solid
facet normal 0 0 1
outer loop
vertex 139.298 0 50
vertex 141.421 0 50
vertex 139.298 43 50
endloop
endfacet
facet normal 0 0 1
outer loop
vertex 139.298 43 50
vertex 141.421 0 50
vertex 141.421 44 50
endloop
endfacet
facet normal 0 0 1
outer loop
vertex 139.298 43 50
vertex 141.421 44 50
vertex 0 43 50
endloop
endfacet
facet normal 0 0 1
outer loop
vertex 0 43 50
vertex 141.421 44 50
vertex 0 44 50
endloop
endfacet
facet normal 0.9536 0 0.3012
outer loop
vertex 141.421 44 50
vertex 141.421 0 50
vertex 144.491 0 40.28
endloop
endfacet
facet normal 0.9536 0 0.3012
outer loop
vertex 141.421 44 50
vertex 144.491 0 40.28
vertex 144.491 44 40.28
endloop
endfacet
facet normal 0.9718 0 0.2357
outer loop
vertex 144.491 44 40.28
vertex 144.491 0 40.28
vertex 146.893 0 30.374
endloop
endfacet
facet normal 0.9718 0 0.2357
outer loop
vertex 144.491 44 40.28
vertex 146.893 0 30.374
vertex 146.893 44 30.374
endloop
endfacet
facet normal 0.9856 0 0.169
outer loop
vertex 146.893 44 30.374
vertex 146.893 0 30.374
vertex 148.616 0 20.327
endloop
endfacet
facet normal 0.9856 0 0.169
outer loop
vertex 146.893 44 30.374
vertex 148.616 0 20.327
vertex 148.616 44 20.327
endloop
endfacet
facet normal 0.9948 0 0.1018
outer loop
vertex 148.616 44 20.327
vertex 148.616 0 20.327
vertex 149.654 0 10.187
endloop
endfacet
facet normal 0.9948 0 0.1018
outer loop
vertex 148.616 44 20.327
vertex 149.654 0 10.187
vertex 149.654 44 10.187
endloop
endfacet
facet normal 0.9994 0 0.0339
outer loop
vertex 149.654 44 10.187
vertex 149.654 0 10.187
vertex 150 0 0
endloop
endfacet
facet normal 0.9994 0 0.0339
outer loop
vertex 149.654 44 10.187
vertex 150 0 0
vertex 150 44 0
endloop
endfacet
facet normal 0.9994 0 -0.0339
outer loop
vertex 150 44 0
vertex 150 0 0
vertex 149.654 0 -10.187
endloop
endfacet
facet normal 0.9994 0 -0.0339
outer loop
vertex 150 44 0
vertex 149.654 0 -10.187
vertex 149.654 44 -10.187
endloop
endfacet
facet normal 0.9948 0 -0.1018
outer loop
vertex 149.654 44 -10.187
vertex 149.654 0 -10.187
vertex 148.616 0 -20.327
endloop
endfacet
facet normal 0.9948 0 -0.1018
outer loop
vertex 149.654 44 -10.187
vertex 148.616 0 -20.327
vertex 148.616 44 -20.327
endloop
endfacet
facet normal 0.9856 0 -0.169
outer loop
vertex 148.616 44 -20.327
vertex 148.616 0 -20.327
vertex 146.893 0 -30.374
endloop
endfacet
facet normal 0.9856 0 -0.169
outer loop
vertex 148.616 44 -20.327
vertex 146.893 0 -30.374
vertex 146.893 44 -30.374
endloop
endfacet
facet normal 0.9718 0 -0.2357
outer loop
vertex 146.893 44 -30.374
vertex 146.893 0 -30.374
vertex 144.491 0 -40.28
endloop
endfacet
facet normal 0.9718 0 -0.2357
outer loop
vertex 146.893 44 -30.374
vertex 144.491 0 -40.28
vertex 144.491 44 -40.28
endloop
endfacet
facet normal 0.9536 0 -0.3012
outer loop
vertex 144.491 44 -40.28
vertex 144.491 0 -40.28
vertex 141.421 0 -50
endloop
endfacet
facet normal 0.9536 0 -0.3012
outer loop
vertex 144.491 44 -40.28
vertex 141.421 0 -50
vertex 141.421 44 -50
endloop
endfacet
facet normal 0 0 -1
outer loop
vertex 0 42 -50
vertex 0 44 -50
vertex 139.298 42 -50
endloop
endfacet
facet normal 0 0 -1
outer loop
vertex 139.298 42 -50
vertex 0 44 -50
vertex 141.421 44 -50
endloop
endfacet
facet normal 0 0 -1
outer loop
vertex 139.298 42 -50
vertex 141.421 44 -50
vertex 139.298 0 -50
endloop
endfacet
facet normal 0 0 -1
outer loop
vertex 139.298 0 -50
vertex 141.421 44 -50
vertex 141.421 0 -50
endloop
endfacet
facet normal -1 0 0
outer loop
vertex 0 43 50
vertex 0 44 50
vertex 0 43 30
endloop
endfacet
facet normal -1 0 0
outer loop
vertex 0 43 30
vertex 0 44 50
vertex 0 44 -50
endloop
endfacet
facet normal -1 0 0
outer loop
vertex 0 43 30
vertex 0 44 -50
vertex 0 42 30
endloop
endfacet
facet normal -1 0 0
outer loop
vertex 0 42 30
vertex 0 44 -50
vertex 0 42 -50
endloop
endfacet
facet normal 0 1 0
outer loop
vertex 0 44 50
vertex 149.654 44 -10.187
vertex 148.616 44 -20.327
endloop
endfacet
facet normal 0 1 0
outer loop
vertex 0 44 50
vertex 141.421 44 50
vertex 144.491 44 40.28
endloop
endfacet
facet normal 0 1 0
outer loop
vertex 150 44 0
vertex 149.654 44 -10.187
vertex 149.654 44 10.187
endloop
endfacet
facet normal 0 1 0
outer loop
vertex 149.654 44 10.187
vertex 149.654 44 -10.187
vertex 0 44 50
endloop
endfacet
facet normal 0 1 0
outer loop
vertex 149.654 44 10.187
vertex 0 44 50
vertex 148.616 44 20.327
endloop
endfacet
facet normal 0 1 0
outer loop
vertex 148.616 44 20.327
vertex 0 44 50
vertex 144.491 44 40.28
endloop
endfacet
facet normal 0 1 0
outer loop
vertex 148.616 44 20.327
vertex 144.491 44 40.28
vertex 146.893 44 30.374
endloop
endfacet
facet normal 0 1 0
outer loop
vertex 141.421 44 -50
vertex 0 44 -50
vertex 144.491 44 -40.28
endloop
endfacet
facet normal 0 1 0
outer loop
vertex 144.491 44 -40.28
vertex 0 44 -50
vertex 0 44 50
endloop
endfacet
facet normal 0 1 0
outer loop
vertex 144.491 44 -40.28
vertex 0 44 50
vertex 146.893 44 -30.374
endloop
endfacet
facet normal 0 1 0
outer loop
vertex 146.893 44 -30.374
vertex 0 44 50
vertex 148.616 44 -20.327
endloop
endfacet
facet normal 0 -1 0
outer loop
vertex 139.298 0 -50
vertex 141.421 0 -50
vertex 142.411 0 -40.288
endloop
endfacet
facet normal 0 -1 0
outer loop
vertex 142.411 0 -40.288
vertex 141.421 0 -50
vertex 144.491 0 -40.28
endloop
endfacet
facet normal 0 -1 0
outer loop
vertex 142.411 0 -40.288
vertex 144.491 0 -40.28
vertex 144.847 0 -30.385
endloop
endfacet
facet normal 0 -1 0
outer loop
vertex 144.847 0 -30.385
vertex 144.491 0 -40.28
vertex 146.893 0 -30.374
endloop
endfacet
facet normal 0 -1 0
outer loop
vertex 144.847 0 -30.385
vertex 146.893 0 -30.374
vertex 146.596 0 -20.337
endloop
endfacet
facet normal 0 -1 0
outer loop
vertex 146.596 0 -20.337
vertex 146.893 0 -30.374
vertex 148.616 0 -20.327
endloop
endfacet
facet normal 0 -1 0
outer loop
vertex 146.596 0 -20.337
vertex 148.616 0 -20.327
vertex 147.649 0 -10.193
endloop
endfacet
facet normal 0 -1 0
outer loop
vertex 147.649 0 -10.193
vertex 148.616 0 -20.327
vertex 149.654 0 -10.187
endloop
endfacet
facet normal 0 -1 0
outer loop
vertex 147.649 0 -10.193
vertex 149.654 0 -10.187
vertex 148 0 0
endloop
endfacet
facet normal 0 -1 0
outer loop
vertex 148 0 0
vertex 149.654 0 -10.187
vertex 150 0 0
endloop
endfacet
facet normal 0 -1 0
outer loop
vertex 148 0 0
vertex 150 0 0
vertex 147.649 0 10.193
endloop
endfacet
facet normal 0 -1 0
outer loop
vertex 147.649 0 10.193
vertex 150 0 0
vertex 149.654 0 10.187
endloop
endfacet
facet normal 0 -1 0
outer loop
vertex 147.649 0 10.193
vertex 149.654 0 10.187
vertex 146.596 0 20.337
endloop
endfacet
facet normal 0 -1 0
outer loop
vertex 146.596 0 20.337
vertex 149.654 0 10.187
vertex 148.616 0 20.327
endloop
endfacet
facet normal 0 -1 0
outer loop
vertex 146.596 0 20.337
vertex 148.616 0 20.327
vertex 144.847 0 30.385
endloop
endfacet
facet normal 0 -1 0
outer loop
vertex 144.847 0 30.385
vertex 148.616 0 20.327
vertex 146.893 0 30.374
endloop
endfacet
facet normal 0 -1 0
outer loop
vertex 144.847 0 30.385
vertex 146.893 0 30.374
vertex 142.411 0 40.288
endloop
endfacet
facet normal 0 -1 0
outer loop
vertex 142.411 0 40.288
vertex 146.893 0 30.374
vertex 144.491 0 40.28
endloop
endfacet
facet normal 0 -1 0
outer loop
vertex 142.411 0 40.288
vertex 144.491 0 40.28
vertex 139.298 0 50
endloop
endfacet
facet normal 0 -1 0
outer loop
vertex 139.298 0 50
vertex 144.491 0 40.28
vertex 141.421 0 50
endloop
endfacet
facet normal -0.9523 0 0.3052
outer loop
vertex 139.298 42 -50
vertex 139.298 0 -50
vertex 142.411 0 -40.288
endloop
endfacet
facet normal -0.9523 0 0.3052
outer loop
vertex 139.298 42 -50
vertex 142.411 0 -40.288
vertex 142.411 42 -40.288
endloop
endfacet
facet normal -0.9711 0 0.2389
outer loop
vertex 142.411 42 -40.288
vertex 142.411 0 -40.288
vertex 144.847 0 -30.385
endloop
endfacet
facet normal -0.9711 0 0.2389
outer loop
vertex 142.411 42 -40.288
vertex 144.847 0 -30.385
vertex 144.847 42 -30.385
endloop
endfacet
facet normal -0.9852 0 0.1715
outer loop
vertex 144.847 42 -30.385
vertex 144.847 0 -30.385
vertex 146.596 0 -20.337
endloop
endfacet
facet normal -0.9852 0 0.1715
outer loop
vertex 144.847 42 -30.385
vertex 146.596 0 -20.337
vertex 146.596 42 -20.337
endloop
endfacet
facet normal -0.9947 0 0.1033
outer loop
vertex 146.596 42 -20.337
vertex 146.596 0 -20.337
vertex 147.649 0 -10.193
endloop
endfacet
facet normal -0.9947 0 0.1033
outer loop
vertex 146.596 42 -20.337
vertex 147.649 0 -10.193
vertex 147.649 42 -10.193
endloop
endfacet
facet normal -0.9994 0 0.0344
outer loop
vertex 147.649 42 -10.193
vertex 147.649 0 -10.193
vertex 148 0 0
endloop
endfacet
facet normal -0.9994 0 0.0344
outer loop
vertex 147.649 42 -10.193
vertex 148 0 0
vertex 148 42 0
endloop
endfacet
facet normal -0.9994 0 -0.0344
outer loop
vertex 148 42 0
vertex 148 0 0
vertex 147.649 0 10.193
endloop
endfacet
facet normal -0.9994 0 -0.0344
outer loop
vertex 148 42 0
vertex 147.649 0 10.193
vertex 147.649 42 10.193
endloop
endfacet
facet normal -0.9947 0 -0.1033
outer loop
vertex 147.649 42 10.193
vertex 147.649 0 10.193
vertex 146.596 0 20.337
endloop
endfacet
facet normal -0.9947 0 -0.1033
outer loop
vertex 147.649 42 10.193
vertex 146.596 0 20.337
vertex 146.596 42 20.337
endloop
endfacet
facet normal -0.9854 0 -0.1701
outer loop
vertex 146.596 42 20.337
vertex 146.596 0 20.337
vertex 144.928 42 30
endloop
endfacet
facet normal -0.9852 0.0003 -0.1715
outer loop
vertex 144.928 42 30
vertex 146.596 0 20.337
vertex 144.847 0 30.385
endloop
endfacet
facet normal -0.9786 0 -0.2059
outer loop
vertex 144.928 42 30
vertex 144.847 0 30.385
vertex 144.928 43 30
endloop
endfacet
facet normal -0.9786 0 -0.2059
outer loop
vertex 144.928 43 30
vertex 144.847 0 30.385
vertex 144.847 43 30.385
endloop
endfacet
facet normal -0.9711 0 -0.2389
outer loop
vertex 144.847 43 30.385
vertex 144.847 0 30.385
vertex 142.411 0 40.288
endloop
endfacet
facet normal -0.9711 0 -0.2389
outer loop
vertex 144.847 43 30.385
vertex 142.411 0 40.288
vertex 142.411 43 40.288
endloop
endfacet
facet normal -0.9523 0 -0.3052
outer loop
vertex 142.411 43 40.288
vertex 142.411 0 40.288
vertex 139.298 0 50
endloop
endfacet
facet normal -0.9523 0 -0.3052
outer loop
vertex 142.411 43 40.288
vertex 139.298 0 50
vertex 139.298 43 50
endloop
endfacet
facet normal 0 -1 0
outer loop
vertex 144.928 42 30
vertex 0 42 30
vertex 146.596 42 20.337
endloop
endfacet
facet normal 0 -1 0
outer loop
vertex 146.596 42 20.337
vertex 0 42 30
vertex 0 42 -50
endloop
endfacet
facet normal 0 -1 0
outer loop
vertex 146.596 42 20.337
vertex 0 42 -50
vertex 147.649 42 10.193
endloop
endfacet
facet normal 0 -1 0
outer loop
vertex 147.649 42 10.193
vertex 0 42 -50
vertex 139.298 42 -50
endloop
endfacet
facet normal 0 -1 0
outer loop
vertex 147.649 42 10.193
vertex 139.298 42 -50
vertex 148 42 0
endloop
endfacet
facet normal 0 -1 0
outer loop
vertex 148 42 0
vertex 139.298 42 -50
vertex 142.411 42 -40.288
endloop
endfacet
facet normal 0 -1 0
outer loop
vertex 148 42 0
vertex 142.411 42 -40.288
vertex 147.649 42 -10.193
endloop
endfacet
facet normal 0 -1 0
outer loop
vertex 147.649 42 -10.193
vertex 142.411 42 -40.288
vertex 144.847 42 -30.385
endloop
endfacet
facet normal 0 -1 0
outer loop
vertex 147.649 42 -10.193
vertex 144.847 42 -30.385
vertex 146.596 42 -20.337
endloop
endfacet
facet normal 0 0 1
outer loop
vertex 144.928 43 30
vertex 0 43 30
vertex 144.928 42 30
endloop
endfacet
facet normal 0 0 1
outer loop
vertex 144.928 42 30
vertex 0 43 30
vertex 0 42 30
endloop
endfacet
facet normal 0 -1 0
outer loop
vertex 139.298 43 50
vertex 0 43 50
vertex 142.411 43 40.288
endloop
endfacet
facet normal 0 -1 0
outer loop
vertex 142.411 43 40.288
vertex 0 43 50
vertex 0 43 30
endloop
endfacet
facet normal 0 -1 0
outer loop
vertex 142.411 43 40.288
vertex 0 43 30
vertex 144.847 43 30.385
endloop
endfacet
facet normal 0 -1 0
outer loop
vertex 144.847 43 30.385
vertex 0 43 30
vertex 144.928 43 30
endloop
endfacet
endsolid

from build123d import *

# Parameters (mm, degrees)
BOSS_EXTRUDE1_DEPTH = 44
SHELL1_T            = -2
CUT_EXTRUDE1_DEPTH  = 1


with BuildPart() as part:
    # Sketch1 → Boss-Extrude1 (new body)
    with BuildSketch(Plane(origin=(0, 0, 0), x_dir=(1, 0, 0), z_dir=(0, 1, 0))):
        with BuildLine():
            Line((0, 0), (0, 50))
            Line((0, 50), (141.421356237, 50))
            ThreePointArc((141.421356237, 50), (150, 0), (141.421356237, -50))
            Line((141.421356237, -50), (0, -50))
            Line((0, -50), (0, 0))
        make_face()
    extrude(amount=BOSS_EXTRUDE1_DEPTH)

    # Shell1
    shell1_openings = [part.faces().sort_by_distance(p)[0] for p in [
        (70.710678119, 22, 50),
        (73.609024715, 0, 0),
        (0, 22, 0),
        (70.710678119, 22, -50),
    ]]
    offset(amount=SHELL1_T, openings=shell1_openings, kind=Kind.INTERSECTION)

    # Sketch3 → Cut-Extrude1 (cut)
    with BuildSketch(Plane.XZ.offset(-42)):
        with BuildLine():
            Line((0, 30), (144.927568116, 30))
            ThreePointArc((144.927568116, 30), (142.464303142, 40.098906848), (139.298241195, 50))
            Line((139.298241195, 50), (0, 50))
            Line((0, 50), (0, 30))
        make_face()
    extrude(amount=-CUT_EXTRUDE1_DEPTH, mode=Mode.SUBTRACT)


solid = part.part
